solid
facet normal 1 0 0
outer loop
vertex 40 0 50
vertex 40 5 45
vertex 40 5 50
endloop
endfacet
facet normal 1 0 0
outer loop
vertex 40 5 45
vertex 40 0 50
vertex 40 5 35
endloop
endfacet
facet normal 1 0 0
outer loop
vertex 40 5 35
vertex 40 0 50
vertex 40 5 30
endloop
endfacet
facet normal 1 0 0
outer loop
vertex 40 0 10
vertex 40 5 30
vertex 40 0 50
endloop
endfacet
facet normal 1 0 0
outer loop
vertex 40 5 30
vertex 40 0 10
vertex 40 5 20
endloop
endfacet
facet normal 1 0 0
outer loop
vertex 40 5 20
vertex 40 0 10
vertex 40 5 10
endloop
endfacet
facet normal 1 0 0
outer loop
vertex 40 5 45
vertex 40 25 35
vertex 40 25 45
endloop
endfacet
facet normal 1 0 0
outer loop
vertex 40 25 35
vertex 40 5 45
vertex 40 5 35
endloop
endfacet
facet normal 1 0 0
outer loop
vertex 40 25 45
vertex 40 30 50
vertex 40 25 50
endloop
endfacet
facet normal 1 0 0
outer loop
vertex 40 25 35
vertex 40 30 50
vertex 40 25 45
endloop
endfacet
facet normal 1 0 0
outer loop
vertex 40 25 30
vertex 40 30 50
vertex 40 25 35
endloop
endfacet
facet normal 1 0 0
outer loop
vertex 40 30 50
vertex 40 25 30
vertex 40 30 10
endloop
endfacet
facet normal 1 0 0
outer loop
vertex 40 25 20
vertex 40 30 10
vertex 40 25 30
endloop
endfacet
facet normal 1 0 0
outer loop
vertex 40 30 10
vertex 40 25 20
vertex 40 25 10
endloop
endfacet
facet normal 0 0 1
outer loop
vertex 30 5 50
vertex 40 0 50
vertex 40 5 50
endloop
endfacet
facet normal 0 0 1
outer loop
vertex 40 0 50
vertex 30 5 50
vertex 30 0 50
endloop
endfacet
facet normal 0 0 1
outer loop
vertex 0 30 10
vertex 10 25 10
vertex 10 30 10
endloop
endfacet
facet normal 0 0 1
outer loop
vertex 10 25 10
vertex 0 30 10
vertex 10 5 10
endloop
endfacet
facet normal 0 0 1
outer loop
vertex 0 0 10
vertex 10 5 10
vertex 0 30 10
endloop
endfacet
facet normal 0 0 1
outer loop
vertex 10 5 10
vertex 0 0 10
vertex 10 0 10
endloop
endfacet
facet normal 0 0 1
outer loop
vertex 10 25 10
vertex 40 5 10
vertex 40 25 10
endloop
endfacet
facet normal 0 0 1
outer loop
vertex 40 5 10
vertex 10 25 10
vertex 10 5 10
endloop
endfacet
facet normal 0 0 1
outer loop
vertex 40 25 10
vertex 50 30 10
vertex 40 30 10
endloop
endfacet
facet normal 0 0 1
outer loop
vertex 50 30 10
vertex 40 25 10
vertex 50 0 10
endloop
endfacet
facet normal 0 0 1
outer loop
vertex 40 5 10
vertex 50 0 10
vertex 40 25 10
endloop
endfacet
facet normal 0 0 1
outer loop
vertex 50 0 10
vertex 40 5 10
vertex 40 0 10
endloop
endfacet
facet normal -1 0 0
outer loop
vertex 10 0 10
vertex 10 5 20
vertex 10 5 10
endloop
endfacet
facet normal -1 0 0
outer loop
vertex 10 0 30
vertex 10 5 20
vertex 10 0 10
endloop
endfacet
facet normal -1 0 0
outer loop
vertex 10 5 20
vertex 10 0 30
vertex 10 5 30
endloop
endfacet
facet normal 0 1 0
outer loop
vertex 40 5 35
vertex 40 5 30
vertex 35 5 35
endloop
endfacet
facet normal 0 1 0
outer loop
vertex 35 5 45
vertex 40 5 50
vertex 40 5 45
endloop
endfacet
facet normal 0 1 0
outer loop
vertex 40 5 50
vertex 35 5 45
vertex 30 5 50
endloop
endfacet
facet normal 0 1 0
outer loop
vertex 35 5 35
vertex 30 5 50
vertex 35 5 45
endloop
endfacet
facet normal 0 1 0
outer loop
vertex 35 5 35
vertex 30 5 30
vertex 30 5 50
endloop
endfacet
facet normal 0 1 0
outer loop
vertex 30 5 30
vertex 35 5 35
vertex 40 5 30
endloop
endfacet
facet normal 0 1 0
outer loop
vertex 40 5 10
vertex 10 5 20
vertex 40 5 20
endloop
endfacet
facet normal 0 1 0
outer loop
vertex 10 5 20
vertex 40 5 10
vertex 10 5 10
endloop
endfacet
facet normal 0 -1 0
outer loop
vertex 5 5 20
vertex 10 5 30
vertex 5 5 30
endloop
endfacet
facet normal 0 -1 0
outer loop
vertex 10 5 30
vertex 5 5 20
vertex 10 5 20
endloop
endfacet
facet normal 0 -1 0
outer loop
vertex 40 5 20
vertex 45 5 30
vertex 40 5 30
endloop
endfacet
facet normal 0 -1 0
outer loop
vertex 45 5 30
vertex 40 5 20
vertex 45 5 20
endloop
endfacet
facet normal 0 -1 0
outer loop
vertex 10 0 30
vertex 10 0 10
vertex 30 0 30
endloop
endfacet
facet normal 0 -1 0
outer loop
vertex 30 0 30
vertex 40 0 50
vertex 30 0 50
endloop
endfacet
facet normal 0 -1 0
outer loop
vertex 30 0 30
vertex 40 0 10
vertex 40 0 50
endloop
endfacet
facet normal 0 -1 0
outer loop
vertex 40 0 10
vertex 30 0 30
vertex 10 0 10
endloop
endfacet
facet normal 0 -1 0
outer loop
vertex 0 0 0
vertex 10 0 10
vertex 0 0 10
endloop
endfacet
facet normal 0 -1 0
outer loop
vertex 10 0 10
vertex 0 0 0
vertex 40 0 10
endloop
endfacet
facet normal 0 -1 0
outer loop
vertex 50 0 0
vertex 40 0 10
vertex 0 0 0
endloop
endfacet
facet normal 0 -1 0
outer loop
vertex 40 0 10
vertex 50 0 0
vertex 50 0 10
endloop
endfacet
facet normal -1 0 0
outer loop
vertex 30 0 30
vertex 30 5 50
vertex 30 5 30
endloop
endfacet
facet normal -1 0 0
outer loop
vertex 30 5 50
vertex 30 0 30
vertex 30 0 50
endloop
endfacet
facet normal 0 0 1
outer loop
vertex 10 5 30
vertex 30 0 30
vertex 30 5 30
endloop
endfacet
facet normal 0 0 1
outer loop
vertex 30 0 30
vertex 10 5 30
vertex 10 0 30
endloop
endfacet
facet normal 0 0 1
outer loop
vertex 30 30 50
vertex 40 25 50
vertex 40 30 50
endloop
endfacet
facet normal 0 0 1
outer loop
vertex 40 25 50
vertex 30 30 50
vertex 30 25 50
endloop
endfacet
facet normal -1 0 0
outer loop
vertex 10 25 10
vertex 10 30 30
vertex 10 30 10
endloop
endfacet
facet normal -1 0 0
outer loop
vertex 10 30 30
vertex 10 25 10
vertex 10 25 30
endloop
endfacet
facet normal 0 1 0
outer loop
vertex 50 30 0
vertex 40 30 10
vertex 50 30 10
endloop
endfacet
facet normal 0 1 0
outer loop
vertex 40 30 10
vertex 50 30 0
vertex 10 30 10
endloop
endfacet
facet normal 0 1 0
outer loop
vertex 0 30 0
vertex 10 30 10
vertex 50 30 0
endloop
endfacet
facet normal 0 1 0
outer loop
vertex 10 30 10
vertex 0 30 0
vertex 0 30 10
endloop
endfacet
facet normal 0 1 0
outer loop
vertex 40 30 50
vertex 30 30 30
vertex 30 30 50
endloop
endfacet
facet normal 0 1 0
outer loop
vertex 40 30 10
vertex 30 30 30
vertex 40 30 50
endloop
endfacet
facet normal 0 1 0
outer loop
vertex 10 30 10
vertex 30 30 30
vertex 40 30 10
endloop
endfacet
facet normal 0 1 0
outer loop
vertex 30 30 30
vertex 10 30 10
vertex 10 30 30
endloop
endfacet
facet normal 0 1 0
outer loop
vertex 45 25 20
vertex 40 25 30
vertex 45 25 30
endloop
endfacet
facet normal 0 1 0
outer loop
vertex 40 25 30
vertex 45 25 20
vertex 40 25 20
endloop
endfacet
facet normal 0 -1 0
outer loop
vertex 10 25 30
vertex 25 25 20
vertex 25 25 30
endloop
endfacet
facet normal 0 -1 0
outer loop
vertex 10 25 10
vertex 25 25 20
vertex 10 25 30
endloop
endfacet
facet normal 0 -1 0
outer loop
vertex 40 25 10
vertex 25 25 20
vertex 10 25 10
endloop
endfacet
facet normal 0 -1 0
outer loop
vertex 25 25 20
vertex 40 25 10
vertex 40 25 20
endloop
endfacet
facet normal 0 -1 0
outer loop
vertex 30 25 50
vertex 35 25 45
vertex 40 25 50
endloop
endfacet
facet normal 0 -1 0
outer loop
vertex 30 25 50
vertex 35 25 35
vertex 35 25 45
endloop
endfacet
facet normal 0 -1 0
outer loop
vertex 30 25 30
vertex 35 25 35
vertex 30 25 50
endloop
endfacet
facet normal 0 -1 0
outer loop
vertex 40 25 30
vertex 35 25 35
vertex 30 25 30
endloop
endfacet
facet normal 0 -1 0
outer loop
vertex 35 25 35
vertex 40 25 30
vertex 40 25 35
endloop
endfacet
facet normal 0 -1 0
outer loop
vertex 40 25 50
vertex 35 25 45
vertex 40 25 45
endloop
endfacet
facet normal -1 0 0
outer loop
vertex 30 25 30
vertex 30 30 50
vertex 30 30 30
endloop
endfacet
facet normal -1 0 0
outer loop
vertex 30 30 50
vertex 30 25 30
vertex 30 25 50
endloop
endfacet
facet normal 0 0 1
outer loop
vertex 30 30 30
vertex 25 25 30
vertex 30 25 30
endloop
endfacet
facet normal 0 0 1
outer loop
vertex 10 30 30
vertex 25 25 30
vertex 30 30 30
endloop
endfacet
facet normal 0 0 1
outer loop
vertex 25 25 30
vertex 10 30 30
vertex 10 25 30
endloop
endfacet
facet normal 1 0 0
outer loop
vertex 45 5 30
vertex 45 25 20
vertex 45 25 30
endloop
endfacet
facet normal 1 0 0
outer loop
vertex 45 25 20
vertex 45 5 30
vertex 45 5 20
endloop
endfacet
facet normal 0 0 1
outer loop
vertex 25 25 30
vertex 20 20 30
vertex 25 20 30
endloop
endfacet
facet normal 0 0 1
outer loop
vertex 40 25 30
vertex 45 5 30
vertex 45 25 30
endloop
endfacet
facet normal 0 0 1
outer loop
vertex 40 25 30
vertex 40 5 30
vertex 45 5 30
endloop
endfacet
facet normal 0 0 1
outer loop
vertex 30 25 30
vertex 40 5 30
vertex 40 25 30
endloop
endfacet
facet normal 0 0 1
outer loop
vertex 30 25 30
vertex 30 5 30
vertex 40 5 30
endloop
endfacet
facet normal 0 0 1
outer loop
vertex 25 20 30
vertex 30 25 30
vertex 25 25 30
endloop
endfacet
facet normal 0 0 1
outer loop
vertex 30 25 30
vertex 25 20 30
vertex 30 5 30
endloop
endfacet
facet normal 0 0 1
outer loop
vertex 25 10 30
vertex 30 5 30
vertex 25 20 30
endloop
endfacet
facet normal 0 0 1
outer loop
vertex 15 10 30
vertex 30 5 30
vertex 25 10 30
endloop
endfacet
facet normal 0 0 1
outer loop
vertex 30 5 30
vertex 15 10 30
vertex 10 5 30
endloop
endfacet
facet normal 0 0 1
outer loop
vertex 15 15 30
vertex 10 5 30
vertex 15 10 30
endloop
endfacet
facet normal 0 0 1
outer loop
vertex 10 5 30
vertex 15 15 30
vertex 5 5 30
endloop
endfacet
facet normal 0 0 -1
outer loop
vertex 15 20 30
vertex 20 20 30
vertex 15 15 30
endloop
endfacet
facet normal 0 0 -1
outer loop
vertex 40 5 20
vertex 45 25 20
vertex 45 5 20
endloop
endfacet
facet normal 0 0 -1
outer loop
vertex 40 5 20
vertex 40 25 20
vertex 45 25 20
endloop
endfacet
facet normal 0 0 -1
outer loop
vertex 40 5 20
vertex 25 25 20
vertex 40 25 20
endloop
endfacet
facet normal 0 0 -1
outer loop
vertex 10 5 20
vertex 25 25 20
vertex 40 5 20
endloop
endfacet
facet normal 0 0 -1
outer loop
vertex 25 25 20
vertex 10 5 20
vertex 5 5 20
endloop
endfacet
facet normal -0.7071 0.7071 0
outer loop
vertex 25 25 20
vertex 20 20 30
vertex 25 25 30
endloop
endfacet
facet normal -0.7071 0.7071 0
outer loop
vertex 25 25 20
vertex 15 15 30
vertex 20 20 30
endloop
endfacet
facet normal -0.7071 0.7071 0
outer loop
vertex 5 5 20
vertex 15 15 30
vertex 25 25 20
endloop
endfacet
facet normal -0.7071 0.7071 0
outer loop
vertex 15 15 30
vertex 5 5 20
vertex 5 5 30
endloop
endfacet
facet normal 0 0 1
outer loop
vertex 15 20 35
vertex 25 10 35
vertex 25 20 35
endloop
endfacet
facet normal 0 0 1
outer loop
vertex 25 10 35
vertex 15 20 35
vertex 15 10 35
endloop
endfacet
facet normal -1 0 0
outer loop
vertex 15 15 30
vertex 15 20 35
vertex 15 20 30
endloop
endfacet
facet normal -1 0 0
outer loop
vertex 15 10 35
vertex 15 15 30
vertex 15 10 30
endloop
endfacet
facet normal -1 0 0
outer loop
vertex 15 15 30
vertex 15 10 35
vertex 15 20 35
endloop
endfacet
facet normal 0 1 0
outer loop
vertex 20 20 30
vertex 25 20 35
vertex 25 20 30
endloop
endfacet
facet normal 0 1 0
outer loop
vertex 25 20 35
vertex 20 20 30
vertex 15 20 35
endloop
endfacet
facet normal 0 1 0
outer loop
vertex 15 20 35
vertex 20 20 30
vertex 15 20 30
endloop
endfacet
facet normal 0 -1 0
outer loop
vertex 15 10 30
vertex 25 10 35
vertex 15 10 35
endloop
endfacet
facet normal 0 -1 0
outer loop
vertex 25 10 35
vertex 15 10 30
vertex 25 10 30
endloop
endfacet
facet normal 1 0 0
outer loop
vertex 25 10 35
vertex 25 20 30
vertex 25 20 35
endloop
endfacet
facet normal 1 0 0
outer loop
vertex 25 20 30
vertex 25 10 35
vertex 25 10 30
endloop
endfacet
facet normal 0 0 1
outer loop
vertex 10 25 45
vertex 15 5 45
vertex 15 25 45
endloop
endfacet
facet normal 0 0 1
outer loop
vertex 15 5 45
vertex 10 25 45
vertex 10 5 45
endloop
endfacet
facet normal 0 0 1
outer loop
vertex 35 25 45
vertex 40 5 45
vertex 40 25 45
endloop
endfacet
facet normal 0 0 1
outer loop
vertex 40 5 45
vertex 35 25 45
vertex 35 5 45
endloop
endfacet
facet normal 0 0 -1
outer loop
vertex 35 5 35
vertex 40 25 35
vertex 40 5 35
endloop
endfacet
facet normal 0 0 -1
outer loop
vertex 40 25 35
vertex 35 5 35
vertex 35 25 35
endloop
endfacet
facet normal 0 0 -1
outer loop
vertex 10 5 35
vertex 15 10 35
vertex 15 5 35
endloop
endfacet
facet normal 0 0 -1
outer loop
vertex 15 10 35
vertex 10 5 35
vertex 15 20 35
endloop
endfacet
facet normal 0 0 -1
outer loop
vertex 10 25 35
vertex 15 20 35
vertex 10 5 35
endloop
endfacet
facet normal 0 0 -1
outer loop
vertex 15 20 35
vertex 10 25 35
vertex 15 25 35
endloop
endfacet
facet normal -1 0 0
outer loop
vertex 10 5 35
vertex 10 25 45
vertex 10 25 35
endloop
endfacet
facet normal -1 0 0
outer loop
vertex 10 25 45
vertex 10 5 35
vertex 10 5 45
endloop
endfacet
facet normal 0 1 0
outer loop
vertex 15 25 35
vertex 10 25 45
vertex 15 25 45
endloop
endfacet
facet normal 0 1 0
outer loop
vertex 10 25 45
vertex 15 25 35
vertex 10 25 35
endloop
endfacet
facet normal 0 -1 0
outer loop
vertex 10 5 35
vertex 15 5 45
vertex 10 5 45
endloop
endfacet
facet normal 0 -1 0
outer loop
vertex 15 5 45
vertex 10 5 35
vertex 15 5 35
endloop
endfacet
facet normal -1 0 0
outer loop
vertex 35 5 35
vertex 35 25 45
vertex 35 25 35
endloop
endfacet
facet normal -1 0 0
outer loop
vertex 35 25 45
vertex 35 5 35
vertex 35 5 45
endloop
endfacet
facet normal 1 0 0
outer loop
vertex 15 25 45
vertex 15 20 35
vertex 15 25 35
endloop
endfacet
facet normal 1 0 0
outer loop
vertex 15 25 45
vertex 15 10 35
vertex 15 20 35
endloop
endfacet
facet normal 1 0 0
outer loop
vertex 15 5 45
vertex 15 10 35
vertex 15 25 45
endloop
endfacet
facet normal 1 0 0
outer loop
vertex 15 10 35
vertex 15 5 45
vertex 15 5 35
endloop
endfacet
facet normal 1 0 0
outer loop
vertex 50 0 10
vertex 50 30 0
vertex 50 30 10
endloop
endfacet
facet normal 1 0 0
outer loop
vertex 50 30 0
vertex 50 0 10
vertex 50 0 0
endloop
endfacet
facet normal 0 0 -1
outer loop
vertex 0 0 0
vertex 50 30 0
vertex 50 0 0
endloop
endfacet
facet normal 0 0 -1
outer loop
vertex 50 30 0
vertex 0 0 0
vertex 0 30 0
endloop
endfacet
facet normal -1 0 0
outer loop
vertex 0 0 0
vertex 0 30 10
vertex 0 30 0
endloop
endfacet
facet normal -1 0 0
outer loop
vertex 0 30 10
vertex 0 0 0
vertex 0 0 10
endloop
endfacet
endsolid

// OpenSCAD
// Base Block
module base_block() {
    cube([50, 30, 10]); // Main block with flattened top surface
}

// Side Plate
module side_plate() {
    difference() {
        cube([30, 5, 40]); // Main plate
        translate([0, 0, 20]) cube([20, 5, 20]); // Adjusted cutout for more defined L-shape
    }
}

// Connector Block
module connector_block() {
    difference() {
        cube([30, 20, 10]); // Main block
        translate([5, 0, 0]) cube([20, 20, 10]); // Widened U-shaped cutout
    }
}

// Support Block
module support_block() {
    difference() {
        cube([40, 20, 10]); // Main block
        translate([0, 0, 0]) rotate([0, 0, 45]) cube([30, 30, 10]); // Deepened slanted cut for sharper angled profile
    }
}

// Spacer Block
module spacer_block() {
    difference() {
        cube([20, 10, 5]); // Main block
        translate([10, 0, 0]) cube([15, 10, 5]); // Enlarged notch for more distinct stepped appearance
    }
}

// Assembly
module assembly() {
    // Layer 5: Base Block
    translate([0, 0, 0]) base_block();

    // Layer 4: Side Plates
    translate([10, 0, 10]) side_plate();
    translate([10, 25, 10]) side_plate();

    // Layer 3: Support Block
    translate([5, 5, 20]) support_block();

    // Layer 2: Spacer Block
    translate([15, 10, 30]) spacer_block();

    // Layer 1: Connector Block
    translate([10, 5, 35]) connector_block();
}

// Render the assembly
assembly();
